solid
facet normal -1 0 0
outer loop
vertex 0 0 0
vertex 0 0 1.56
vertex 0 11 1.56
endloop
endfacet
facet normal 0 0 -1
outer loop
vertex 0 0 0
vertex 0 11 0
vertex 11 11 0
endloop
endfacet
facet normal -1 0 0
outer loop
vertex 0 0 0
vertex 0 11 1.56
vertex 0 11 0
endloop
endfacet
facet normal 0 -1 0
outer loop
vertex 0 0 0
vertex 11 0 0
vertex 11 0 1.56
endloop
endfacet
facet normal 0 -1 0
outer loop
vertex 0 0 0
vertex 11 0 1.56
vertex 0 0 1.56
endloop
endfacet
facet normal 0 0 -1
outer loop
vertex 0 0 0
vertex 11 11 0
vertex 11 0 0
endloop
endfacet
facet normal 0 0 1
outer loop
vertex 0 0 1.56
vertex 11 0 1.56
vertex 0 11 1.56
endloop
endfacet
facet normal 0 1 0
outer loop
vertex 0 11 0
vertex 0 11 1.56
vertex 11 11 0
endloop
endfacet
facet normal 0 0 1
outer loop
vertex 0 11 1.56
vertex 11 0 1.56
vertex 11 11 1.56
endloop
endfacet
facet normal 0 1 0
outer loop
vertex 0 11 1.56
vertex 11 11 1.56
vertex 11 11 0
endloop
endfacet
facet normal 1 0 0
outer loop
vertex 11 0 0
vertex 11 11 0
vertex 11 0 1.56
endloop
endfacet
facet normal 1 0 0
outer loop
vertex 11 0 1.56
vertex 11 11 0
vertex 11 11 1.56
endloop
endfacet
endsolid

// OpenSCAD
/* Warning, this is a very basic generator with a lot of approximation 
input data : [LFBGA, 6JX, 11x11x1.56mm, 169, , C, C04-00439C]
generated by com.zoubworld.electronics.cad.model3d.Basic
Date : Sun Feb 15 10:50:48 CET 2026
*/

//body
color("black")
translate([0,0,0])
cube([11.0,11.0,1.56], center=false);
